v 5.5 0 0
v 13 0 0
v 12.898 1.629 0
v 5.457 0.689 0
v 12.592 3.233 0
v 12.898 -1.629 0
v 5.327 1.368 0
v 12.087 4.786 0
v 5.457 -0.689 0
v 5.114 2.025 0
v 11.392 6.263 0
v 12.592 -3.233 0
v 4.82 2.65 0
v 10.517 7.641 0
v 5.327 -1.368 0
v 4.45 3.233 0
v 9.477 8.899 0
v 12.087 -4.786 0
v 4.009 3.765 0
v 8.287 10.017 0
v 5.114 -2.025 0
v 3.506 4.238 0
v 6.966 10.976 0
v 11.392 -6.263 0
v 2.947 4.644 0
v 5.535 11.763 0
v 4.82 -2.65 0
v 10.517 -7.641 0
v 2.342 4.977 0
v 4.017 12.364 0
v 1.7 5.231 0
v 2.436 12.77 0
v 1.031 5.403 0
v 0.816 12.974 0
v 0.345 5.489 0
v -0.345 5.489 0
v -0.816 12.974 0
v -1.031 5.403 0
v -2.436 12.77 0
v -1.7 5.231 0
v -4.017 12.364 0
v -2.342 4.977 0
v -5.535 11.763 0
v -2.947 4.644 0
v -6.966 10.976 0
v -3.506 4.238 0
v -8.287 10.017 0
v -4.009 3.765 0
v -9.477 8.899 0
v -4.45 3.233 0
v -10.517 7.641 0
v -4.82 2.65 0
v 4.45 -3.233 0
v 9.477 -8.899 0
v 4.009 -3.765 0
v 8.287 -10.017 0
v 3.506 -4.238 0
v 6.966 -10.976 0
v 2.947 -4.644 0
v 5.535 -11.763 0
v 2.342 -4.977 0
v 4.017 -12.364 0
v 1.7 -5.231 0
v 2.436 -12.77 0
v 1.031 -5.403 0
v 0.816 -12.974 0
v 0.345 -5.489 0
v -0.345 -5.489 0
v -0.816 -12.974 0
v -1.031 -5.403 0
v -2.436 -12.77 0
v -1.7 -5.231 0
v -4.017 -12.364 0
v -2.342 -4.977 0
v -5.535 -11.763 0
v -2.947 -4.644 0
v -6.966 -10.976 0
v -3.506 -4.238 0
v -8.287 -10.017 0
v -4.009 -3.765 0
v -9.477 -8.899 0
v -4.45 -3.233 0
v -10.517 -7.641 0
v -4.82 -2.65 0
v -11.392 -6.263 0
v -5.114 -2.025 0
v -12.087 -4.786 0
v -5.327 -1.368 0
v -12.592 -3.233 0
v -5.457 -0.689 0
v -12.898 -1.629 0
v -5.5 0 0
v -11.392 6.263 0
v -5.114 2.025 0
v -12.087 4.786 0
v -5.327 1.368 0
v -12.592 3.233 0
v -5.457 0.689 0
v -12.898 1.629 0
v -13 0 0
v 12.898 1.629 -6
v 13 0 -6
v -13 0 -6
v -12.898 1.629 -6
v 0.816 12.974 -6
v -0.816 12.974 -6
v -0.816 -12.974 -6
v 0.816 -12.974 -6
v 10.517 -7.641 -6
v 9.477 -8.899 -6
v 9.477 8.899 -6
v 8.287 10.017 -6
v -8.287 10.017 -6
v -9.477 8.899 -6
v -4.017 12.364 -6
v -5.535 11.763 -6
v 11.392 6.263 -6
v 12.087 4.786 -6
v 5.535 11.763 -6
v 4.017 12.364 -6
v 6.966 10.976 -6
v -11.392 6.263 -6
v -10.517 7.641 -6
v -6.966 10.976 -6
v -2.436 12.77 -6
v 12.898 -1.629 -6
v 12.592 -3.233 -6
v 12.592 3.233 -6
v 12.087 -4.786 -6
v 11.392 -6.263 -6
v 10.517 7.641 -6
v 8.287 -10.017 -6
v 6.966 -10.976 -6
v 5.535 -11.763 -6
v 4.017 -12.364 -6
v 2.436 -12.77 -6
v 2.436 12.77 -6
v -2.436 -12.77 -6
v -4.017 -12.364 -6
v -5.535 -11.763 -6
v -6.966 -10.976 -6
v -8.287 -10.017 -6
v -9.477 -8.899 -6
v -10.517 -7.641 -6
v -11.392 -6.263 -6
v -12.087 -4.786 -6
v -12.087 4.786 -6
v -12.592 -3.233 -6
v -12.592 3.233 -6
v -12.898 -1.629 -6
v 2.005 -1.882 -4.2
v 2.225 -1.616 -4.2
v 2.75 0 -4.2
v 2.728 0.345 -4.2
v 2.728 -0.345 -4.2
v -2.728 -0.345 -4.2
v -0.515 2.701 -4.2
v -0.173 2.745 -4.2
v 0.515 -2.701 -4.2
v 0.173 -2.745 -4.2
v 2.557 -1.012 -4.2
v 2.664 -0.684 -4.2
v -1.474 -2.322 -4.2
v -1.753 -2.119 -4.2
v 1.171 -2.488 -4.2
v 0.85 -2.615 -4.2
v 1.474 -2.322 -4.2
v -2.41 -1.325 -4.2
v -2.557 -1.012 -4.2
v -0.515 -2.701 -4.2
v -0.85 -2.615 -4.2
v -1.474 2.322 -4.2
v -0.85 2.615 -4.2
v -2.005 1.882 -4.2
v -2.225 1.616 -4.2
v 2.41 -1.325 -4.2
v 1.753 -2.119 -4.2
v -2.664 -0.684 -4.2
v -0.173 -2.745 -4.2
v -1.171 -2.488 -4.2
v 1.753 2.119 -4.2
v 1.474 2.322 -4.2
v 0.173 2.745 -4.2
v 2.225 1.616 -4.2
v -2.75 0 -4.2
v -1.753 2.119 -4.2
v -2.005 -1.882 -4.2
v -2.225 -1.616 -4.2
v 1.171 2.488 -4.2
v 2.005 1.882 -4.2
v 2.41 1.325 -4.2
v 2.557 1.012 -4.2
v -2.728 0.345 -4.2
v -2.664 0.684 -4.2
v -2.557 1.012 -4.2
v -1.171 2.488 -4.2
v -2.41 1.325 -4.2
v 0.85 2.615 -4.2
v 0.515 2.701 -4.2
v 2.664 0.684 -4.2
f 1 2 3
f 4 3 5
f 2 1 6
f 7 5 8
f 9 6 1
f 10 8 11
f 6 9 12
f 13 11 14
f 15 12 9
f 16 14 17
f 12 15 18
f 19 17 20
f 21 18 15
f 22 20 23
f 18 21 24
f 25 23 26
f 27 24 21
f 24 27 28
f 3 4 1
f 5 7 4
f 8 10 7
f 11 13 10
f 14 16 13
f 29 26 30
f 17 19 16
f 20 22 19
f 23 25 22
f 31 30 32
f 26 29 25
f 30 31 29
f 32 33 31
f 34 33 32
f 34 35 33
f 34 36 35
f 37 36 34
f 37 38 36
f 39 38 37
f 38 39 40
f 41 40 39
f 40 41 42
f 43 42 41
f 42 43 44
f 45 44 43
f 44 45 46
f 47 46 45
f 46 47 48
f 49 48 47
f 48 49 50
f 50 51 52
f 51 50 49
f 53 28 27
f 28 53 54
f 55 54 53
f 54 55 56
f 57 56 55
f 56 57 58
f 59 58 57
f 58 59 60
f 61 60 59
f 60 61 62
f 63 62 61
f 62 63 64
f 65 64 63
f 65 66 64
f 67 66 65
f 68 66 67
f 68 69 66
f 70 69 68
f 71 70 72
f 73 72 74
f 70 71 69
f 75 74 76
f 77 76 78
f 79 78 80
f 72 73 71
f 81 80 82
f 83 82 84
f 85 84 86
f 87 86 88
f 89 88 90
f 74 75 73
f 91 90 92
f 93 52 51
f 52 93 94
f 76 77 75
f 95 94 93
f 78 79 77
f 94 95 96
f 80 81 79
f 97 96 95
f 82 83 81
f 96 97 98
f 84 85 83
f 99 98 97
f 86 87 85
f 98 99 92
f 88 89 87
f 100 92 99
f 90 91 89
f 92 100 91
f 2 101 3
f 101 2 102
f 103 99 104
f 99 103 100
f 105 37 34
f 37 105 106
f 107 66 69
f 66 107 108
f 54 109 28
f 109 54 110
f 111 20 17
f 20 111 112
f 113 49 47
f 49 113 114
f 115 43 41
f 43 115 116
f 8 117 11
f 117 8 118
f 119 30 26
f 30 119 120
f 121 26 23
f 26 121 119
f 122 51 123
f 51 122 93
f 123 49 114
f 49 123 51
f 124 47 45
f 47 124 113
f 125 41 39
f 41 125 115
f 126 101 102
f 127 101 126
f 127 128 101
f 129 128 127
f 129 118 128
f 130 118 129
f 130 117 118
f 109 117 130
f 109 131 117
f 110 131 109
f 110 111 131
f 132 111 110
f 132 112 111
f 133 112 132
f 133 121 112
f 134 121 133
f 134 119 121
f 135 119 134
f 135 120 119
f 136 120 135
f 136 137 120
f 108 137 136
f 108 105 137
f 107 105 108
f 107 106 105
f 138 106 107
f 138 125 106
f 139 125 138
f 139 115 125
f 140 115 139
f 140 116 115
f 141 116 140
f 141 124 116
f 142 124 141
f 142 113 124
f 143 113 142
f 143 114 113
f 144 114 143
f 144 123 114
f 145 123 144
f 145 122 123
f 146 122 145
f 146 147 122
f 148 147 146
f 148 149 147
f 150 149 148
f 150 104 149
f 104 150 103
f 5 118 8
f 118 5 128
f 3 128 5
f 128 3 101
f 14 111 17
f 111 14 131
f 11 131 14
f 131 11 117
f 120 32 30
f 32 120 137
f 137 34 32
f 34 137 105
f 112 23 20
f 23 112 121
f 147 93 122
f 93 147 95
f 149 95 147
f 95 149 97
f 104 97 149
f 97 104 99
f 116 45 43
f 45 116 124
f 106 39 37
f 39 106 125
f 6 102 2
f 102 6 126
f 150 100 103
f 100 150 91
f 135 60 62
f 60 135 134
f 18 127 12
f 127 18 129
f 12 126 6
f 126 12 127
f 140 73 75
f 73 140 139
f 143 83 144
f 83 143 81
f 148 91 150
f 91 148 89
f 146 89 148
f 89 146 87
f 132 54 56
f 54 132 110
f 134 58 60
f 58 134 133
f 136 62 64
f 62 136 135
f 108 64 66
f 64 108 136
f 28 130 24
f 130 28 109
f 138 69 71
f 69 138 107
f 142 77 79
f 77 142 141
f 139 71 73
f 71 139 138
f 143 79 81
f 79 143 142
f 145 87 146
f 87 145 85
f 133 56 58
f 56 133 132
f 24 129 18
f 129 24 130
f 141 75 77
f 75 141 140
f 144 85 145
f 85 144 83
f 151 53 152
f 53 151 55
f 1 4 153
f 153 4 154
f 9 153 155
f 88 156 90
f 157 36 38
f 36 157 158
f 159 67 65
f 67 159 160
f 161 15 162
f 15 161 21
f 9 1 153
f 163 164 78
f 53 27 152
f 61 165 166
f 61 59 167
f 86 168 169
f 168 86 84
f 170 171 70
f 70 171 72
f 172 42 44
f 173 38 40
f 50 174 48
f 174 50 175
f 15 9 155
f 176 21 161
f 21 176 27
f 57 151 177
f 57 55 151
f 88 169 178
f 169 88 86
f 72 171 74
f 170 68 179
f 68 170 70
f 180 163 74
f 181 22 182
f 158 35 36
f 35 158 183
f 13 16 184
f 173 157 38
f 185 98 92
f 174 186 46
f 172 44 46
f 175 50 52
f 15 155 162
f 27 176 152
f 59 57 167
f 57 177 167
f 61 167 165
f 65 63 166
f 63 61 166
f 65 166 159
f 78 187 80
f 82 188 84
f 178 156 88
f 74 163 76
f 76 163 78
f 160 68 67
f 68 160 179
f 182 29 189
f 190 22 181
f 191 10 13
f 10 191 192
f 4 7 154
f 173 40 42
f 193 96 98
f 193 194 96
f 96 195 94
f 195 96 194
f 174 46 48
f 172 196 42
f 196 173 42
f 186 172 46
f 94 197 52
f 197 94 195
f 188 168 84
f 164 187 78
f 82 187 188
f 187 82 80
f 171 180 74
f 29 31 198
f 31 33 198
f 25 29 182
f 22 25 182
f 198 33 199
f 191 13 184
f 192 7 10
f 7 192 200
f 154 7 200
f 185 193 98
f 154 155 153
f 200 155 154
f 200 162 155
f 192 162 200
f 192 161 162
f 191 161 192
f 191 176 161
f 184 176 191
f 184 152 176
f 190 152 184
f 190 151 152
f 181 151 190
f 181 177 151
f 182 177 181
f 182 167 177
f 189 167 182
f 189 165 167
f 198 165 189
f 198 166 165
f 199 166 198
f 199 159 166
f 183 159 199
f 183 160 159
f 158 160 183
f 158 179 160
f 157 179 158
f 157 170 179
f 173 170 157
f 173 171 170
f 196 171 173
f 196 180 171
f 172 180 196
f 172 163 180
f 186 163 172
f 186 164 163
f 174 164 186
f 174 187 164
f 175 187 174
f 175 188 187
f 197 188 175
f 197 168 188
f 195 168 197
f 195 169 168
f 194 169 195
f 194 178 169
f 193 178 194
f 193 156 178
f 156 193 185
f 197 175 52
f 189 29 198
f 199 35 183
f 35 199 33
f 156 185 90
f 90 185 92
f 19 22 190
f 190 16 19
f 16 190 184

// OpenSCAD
$fn = 50;


difference() {
	union() {
		translate(v = [0, 0, -3.0000000000]) {
			cylinder(h = 3, r = 7.0000000000);
		}
		translate(v = [0, 0, -6.0000000000]) {
			cylinder(h = 6, r = 13.0000000000);
		}
	}
	union() {
		translate(v = [0, 0, 0]) {
			rotate(a = [0, 0, 0]) {
				difference() {
					union() {
						#translate(v = [0, 0, -3.0000000000]) {
							cylinder(h = 3, r = 2.2500000000);
						}
						#translate(v = [0, 0, -4.2000000000]) {
							cylinder(h = 4.2000000000, r1 = 2.7500000000, r2 = 5.5000000000);
						}
						#translate(v = [0, 0, -3.0000000000]) {
							cylinder(h = 3, r = 2.7500000000);
						}
						#translate(v = [0, 0, -3.0000000000]) {
							cylinder(h = 3, r = 2.2500000000);
						}
					}
					union();
				}
			}
		}
	}
}
